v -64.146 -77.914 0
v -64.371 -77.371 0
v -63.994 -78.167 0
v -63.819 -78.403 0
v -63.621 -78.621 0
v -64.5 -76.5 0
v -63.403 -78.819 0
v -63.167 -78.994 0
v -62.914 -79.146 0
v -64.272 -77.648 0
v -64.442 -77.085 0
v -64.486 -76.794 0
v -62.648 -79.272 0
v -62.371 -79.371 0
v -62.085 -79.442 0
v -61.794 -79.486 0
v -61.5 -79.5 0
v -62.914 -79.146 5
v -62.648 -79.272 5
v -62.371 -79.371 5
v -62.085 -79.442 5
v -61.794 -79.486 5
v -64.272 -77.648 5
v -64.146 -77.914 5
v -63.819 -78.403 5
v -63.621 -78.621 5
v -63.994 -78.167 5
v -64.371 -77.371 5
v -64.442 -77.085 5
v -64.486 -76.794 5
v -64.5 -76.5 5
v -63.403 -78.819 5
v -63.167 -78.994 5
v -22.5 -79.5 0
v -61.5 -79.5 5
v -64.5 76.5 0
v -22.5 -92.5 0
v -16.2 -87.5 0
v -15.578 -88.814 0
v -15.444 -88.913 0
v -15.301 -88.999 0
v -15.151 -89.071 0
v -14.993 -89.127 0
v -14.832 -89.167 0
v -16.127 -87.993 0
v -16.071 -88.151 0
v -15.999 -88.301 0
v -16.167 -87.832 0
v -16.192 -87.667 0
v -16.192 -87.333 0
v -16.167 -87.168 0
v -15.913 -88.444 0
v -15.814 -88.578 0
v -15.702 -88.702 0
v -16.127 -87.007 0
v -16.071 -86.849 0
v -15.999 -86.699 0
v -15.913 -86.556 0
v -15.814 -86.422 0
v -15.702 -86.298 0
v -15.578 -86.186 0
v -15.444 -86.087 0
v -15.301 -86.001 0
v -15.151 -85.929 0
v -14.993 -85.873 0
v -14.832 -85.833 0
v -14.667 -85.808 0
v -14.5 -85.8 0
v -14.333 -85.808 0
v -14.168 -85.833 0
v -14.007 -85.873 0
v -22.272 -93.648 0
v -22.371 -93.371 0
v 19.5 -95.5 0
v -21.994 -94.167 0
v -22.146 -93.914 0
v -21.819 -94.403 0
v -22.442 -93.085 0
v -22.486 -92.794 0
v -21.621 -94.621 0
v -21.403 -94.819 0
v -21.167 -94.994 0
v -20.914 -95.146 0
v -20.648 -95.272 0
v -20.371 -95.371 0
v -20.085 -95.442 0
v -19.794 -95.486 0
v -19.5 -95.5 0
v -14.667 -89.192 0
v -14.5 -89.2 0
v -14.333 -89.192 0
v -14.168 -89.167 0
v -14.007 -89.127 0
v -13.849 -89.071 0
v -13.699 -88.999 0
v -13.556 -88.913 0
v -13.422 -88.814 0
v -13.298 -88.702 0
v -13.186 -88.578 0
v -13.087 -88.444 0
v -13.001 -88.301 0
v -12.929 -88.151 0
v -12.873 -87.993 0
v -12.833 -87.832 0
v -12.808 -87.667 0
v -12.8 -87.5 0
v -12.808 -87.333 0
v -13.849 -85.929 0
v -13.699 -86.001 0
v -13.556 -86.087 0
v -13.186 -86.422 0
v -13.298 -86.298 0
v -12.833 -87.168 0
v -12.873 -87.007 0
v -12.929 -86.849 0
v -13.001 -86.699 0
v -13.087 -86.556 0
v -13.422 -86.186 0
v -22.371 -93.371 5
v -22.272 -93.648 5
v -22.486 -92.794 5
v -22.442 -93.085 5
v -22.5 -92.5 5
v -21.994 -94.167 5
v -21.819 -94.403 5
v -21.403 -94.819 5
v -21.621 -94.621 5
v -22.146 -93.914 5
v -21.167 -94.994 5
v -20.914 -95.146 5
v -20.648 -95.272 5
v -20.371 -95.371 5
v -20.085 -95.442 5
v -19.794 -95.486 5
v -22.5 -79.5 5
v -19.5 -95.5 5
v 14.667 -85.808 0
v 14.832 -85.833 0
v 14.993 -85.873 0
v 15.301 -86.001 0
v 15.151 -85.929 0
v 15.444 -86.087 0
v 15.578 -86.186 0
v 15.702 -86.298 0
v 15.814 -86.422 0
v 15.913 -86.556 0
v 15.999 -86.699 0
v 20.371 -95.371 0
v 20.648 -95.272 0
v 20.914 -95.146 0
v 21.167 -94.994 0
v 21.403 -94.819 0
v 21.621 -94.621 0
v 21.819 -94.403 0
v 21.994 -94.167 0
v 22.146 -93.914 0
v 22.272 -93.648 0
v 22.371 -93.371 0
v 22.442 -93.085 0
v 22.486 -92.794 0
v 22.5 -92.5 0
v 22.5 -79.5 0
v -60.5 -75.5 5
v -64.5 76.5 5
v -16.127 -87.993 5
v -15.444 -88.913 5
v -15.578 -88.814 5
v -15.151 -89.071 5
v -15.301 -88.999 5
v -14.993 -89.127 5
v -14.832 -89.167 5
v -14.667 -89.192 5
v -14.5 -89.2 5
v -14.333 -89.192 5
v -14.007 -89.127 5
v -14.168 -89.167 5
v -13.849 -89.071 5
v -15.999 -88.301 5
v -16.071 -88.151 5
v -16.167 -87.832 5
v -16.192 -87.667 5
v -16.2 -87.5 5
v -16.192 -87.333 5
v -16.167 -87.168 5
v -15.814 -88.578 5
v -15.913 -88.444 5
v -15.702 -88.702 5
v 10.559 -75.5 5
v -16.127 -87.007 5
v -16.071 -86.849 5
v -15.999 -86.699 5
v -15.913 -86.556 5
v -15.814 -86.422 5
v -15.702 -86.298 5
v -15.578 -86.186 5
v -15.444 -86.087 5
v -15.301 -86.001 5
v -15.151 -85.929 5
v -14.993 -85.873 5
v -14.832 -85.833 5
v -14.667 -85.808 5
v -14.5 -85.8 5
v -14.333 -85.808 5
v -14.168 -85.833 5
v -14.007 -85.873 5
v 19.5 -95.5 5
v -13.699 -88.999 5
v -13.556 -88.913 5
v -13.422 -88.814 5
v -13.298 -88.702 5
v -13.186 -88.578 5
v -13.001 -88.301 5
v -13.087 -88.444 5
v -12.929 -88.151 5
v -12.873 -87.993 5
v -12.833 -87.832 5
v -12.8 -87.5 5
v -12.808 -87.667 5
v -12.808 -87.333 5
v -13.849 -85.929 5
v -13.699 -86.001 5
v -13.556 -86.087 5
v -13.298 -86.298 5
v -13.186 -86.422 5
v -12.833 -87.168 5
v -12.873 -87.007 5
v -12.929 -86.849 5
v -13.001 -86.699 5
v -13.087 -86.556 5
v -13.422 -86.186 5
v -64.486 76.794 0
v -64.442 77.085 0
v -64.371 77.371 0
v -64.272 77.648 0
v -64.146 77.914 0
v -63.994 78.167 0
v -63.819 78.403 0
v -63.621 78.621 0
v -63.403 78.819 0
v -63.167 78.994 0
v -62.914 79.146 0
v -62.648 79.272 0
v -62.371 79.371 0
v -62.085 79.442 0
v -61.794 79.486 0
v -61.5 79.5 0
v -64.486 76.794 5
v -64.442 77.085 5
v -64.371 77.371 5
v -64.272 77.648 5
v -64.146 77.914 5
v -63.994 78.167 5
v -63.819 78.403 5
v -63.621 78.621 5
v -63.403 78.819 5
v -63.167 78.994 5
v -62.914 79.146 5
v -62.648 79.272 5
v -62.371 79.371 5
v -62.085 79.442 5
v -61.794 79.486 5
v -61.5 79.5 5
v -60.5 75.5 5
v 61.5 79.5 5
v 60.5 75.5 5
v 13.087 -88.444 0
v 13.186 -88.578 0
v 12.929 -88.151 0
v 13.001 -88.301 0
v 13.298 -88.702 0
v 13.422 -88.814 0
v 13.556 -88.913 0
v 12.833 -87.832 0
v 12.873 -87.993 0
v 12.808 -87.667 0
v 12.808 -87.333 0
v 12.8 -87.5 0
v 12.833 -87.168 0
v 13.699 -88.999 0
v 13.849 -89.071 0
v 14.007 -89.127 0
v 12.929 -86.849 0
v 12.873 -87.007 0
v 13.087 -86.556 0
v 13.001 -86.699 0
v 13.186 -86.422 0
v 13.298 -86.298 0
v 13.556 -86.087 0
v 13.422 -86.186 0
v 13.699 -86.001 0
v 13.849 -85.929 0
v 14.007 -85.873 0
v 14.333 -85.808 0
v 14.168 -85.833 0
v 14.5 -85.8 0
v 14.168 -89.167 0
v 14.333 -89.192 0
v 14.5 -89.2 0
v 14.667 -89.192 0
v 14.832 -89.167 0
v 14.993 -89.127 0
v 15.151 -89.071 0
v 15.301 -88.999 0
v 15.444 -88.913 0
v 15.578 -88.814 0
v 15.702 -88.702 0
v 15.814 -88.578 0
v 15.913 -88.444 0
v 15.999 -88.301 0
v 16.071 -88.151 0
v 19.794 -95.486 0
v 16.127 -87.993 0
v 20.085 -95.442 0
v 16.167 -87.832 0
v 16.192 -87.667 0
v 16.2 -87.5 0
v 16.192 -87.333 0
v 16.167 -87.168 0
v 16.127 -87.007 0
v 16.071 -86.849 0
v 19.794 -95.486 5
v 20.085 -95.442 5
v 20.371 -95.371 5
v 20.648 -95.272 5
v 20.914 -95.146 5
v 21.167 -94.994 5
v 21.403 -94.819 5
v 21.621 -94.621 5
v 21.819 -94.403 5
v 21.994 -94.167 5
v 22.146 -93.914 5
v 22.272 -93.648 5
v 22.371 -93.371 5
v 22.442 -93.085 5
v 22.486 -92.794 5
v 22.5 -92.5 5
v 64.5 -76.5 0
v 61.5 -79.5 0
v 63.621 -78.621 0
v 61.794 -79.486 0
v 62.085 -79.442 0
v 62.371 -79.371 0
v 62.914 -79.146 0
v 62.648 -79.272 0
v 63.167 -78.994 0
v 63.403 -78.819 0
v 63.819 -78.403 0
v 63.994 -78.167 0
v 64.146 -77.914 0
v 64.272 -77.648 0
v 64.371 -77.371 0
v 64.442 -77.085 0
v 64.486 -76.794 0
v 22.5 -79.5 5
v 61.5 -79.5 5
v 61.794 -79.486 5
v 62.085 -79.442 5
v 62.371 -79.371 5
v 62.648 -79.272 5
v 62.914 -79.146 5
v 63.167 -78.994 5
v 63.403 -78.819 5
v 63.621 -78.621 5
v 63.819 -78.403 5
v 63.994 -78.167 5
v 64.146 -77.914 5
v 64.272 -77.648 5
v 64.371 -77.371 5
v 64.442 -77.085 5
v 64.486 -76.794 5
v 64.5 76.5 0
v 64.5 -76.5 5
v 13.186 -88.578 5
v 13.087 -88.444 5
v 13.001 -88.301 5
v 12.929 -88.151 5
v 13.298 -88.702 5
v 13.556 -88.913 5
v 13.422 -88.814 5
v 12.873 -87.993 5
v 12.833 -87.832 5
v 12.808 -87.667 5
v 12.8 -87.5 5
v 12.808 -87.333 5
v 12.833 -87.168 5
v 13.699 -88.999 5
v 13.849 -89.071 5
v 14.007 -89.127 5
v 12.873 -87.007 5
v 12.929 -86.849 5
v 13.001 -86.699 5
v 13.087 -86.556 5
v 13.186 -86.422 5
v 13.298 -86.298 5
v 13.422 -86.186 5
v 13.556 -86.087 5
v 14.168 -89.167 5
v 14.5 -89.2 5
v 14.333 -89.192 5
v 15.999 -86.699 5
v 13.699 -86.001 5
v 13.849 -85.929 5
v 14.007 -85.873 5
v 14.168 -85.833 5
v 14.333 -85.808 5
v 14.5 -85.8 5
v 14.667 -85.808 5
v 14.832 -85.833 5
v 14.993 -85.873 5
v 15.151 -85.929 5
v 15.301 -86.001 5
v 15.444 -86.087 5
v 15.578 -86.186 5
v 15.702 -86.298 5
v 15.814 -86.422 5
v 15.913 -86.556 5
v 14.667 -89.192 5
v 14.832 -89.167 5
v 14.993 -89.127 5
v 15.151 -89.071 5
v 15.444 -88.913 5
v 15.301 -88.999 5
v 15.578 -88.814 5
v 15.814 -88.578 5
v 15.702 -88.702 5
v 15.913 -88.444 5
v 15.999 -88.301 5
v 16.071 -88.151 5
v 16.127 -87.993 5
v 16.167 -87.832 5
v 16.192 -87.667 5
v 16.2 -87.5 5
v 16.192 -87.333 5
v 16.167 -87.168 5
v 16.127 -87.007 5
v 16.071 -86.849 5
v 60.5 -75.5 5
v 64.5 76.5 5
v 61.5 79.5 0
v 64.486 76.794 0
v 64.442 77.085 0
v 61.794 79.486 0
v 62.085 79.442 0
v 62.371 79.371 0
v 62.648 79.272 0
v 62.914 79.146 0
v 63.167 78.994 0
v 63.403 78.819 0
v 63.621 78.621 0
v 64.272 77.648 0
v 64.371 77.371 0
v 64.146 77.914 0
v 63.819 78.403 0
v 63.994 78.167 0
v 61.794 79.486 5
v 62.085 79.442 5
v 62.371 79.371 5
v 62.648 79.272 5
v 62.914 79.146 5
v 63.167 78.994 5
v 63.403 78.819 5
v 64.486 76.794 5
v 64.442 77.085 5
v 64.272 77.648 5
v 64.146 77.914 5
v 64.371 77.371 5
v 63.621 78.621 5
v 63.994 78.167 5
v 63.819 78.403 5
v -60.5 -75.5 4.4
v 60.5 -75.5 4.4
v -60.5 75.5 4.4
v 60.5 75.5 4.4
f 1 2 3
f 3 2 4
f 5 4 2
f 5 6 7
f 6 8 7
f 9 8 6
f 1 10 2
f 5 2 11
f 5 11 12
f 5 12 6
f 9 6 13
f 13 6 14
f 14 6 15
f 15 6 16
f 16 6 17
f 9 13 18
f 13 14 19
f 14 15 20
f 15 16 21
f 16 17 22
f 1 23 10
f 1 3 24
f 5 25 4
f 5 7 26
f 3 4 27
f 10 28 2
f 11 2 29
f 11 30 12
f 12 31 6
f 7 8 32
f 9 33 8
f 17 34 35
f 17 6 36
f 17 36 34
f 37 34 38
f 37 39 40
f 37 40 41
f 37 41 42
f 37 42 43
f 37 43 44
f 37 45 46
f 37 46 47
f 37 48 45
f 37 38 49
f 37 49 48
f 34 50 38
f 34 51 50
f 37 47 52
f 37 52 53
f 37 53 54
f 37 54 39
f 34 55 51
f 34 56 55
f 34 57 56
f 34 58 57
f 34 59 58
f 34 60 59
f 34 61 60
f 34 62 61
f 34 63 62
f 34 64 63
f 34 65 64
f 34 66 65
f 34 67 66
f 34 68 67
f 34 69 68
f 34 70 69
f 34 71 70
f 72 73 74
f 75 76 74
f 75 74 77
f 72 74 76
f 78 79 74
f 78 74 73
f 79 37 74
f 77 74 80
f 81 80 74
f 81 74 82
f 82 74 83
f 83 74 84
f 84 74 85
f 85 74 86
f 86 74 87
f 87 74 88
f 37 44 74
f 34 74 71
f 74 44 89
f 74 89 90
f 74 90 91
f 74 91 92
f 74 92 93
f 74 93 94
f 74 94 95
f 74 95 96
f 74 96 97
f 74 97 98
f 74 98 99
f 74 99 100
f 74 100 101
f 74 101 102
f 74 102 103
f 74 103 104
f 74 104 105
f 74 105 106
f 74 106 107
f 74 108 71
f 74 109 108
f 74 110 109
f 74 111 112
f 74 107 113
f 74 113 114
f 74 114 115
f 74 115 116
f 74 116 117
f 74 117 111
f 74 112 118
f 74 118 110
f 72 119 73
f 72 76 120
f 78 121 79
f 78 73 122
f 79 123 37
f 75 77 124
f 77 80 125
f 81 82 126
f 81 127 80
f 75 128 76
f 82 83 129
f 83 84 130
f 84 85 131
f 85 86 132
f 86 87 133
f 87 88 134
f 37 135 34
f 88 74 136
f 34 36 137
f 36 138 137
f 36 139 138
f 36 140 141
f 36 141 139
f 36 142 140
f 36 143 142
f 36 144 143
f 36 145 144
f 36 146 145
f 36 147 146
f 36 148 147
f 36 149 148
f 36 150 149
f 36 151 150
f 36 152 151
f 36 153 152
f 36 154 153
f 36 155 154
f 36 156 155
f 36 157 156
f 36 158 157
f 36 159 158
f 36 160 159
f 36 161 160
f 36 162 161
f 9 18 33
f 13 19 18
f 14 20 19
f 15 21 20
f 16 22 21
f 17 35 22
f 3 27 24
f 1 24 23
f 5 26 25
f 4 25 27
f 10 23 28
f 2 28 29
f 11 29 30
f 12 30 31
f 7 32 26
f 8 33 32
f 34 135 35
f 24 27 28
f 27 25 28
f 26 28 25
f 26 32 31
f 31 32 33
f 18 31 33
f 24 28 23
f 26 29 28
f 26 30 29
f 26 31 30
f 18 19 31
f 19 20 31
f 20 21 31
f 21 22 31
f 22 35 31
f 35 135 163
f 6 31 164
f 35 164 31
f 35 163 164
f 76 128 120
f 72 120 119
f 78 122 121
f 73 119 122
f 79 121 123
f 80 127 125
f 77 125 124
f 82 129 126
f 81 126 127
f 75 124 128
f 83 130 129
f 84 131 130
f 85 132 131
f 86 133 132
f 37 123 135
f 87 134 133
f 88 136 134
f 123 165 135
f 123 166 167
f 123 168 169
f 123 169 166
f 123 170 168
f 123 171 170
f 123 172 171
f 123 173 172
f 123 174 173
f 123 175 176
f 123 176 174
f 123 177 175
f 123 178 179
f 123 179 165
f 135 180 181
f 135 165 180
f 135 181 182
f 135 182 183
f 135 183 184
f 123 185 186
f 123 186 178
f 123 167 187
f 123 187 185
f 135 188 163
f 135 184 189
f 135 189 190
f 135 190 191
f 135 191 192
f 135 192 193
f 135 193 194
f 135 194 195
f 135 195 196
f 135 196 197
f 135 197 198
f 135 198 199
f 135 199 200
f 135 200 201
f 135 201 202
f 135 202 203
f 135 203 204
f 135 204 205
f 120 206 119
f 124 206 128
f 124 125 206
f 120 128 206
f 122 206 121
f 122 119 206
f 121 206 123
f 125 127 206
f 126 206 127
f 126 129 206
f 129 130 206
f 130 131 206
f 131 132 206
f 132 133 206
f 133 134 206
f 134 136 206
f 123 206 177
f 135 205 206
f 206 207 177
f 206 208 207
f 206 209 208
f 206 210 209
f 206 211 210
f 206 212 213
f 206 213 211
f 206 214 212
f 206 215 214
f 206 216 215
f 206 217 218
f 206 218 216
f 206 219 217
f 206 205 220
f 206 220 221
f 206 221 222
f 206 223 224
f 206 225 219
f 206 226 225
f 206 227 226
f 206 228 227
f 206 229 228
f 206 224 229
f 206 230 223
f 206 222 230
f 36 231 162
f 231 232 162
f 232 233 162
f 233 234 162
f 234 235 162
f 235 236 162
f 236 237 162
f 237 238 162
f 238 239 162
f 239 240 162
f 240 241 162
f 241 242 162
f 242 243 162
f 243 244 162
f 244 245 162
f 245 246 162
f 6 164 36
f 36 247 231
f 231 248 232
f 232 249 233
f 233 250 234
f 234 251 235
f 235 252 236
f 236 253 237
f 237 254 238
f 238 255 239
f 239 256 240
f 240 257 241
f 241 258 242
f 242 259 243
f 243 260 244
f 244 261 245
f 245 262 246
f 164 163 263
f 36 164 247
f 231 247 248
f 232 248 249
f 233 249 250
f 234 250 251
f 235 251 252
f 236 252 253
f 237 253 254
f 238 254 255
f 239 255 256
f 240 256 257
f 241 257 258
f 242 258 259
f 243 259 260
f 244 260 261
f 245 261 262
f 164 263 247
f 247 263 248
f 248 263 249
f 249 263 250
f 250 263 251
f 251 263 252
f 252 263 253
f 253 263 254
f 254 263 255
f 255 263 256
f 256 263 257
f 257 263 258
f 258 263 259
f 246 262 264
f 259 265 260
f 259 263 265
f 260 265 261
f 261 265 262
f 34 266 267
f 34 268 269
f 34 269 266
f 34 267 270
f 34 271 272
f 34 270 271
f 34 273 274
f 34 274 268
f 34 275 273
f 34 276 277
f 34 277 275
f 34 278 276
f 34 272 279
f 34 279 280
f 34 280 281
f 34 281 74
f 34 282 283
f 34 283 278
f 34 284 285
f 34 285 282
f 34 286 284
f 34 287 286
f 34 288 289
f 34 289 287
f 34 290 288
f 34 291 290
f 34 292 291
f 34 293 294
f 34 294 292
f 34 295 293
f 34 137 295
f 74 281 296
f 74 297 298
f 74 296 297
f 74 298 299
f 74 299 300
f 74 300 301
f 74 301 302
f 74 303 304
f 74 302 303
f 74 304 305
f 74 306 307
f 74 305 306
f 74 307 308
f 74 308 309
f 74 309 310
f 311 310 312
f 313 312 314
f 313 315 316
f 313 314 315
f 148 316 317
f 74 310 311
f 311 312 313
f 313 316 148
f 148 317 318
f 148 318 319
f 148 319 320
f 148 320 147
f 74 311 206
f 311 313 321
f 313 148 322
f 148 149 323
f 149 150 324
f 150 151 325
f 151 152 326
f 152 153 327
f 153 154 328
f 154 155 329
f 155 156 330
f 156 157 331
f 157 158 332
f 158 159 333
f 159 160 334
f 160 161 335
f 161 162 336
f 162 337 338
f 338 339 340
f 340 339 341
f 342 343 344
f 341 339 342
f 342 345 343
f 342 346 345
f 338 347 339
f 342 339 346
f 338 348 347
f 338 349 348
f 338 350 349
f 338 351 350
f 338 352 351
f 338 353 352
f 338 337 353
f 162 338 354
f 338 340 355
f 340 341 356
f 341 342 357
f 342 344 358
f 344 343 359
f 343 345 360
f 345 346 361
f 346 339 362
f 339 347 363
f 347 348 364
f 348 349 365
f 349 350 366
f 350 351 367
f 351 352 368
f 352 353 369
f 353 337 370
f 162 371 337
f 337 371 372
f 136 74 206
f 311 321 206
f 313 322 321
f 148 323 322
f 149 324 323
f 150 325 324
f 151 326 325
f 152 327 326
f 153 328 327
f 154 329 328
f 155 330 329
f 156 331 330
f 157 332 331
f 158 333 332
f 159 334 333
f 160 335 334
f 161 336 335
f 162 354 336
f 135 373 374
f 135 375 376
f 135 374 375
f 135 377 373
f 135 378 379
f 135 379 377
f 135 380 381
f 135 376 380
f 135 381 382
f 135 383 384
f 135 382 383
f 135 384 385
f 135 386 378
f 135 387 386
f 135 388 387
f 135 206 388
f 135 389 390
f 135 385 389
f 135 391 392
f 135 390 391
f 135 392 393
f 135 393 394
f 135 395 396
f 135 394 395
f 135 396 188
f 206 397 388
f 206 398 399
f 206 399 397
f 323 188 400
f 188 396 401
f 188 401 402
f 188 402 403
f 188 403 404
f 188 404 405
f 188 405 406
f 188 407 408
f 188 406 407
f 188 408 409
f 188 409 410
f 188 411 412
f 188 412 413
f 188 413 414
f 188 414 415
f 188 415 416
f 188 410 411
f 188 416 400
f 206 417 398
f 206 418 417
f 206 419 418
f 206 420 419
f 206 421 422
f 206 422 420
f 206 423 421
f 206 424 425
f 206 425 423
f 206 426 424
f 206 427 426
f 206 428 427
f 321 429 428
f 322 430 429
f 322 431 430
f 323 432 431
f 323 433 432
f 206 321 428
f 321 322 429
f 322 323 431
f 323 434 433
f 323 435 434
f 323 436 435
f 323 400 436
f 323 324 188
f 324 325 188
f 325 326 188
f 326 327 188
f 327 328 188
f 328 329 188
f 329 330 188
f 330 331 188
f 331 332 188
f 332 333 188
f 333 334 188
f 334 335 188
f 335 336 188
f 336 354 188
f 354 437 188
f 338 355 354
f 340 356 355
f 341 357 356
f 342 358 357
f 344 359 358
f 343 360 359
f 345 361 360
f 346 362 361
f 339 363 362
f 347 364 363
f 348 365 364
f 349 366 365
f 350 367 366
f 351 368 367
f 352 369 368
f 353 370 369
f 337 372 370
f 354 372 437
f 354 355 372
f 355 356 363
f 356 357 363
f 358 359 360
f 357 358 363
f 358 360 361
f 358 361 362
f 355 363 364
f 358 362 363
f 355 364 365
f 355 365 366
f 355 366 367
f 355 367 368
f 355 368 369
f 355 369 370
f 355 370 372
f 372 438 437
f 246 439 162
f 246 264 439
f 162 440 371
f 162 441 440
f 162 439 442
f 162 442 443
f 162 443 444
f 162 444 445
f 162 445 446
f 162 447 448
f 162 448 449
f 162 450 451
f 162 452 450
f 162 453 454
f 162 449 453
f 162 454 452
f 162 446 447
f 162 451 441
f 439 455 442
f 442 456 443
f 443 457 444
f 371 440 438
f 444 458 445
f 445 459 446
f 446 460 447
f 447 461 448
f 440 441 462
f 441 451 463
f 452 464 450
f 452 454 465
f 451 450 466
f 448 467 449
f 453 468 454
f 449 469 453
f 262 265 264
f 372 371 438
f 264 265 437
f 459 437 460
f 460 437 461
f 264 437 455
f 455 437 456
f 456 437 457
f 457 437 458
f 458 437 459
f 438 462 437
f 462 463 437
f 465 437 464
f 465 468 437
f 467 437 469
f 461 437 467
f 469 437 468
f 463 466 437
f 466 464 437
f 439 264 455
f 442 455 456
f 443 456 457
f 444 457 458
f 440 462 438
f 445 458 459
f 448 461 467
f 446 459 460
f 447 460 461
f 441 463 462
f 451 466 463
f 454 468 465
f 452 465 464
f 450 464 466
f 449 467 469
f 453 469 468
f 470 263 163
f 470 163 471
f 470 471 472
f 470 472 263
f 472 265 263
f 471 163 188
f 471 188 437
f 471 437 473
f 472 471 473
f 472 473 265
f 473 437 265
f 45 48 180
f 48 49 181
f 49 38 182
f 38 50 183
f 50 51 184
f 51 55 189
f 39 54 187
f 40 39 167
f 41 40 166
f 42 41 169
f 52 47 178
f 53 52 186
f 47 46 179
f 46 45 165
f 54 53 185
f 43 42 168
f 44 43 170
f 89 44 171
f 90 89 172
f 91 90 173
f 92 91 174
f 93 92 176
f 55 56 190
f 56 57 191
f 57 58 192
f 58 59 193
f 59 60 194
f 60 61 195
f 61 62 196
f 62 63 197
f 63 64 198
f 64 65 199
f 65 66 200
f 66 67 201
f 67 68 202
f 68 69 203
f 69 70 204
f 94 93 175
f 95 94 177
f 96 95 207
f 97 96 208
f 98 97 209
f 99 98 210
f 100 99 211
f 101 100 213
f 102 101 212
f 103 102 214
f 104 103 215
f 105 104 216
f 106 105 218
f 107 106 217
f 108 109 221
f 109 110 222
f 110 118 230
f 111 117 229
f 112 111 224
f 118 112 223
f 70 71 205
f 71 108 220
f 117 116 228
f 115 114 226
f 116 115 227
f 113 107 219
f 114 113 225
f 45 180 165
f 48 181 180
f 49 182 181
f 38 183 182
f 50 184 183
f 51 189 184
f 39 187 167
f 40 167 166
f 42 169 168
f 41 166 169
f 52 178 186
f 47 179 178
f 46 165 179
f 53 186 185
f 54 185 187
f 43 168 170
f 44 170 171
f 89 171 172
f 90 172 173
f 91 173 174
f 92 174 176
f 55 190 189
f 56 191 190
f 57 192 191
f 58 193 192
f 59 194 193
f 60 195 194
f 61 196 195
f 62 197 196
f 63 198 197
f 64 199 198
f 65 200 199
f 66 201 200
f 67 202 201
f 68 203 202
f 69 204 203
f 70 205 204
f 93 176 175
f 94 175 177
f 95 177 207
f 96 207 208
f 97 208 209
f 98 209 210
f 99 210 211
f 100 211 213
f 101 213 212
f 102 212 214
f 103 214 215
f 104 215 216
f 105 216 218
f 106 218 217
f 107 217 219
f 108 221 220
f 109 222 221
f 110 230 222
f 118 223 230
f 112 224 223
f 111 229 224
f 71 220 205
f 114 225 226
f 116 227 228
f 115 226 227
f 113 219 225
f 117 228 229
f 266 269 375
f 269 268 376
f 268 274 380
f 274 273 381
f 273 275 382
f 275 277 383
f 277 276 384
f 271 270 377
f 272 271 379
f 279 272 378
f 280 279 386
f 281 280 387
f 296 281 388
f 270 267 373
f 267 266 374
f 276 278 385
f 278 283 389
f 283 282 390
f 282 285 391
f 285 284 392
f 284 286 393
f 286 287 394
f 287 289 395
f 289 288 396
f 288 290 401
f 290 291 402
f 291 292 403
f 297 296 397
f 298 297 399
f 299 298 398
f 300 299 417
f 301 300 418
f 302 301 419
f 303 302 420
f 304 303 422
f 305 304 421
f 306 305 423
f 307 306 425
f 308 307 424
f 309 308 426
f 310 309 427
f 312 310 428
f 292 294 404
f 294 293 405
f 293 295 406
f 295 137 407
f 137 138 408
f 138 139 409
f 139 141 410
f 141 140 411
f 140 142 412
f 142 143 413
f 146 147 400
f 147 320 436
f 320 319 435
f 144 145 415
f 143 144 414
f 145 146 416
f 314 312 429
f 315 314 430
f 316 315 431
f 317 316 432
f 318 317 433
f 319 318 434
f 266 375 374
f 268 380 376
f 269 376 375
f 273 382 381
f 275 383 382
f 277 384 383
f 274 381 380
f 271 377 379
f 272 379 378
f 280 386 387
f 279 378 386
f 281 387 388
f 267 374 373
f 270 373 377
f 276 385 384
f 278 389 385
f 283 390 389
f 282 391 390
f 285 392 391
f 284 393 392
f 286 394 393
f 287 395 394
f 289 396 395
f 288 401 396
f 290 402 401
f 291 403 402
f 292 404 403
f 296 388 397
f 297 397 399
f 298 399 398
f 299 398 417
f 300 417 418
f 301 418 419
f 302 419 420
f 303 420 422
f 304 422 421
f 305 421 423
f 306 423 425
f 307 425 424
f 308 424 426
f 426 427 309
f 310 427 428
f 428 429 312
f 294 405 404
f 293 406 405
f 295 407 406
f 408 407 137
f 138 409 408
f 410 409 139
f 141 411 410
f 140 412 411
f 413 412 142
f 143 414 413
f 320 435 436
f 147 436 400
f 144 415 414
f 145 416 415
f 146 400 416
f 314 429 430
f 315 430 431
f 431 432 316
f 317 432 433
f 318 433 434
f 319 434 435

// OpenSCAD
// Mount plate for the ChArUco calibration board (camera_extrinsic_calib.py board defaults:
// 4x5 squares of 30 mm = 120 x 150 mm). The printed board is glued into a shallow pocket;
// a tab on one short side carries two mounting holes, centered and 29 mm apart, so the
// screw heads do not cover the board. All dimensions in mm.

board_w     = 120;    // board size along the short side
board_h     = 150;    // board size along the long side
pocket_gap  = 0.5;    // clearance around the paper in the pocket
pocket_d    = 0.6;    // pocket depth (locates the paper; glue it flat)
rim         = 4;      // plate border around the pocket
plate_t     = 5;      // plate thickness

tab_w       = 45;     // tab width along the short side
tab_l       = 16;     // tab length beyond the plate edge
hole_pitch  = 29;     // center-to-center distance of the two holes
hole_d      = 3.4;    // M3 clearance; M4 -> 4.5
hole_off    = 8;      // hole centers from the outer edge of the tab
corner_r    = 3;

$fn = 64;

plate_w = board_w + 2 * pocket_gap + 2 * rim;
plate_h = board_h + 2 * pocket_gap + 2 * rim;

module rounded_rect(w, h, r) {
    offset(r) offset(-r) square([w, h], center = true);
}

difference() {
    linear_extrude(plate_t) union() {
        rounded_rect(plate_w, plate_h, corner_r);
        // tab on the -y short side, overlapping the plate so the union is one body
        translate([0, -plate_h / 2 - tab_l / 2 + corner_r / 2])
            rounded_rect(tab_w, tab_l + corner_r, corner_r);
    }
    // paper pocket on the top face
    translate([0, 0, plate_t - pocket_d])
        linear_extrude(pocket_d + 1)
            square([board_w + 2 * pocket_gap, board_h + 2 * pocket_gap], center = true);
    // mounting holes
    for (sx = [-1, 1])
        translate([sx * hole_pitch / 2, -plate_h / 2 - tab_l + hole_off, -1])
            cylinder(d = hole_d, h = plate_t + 2);
}
